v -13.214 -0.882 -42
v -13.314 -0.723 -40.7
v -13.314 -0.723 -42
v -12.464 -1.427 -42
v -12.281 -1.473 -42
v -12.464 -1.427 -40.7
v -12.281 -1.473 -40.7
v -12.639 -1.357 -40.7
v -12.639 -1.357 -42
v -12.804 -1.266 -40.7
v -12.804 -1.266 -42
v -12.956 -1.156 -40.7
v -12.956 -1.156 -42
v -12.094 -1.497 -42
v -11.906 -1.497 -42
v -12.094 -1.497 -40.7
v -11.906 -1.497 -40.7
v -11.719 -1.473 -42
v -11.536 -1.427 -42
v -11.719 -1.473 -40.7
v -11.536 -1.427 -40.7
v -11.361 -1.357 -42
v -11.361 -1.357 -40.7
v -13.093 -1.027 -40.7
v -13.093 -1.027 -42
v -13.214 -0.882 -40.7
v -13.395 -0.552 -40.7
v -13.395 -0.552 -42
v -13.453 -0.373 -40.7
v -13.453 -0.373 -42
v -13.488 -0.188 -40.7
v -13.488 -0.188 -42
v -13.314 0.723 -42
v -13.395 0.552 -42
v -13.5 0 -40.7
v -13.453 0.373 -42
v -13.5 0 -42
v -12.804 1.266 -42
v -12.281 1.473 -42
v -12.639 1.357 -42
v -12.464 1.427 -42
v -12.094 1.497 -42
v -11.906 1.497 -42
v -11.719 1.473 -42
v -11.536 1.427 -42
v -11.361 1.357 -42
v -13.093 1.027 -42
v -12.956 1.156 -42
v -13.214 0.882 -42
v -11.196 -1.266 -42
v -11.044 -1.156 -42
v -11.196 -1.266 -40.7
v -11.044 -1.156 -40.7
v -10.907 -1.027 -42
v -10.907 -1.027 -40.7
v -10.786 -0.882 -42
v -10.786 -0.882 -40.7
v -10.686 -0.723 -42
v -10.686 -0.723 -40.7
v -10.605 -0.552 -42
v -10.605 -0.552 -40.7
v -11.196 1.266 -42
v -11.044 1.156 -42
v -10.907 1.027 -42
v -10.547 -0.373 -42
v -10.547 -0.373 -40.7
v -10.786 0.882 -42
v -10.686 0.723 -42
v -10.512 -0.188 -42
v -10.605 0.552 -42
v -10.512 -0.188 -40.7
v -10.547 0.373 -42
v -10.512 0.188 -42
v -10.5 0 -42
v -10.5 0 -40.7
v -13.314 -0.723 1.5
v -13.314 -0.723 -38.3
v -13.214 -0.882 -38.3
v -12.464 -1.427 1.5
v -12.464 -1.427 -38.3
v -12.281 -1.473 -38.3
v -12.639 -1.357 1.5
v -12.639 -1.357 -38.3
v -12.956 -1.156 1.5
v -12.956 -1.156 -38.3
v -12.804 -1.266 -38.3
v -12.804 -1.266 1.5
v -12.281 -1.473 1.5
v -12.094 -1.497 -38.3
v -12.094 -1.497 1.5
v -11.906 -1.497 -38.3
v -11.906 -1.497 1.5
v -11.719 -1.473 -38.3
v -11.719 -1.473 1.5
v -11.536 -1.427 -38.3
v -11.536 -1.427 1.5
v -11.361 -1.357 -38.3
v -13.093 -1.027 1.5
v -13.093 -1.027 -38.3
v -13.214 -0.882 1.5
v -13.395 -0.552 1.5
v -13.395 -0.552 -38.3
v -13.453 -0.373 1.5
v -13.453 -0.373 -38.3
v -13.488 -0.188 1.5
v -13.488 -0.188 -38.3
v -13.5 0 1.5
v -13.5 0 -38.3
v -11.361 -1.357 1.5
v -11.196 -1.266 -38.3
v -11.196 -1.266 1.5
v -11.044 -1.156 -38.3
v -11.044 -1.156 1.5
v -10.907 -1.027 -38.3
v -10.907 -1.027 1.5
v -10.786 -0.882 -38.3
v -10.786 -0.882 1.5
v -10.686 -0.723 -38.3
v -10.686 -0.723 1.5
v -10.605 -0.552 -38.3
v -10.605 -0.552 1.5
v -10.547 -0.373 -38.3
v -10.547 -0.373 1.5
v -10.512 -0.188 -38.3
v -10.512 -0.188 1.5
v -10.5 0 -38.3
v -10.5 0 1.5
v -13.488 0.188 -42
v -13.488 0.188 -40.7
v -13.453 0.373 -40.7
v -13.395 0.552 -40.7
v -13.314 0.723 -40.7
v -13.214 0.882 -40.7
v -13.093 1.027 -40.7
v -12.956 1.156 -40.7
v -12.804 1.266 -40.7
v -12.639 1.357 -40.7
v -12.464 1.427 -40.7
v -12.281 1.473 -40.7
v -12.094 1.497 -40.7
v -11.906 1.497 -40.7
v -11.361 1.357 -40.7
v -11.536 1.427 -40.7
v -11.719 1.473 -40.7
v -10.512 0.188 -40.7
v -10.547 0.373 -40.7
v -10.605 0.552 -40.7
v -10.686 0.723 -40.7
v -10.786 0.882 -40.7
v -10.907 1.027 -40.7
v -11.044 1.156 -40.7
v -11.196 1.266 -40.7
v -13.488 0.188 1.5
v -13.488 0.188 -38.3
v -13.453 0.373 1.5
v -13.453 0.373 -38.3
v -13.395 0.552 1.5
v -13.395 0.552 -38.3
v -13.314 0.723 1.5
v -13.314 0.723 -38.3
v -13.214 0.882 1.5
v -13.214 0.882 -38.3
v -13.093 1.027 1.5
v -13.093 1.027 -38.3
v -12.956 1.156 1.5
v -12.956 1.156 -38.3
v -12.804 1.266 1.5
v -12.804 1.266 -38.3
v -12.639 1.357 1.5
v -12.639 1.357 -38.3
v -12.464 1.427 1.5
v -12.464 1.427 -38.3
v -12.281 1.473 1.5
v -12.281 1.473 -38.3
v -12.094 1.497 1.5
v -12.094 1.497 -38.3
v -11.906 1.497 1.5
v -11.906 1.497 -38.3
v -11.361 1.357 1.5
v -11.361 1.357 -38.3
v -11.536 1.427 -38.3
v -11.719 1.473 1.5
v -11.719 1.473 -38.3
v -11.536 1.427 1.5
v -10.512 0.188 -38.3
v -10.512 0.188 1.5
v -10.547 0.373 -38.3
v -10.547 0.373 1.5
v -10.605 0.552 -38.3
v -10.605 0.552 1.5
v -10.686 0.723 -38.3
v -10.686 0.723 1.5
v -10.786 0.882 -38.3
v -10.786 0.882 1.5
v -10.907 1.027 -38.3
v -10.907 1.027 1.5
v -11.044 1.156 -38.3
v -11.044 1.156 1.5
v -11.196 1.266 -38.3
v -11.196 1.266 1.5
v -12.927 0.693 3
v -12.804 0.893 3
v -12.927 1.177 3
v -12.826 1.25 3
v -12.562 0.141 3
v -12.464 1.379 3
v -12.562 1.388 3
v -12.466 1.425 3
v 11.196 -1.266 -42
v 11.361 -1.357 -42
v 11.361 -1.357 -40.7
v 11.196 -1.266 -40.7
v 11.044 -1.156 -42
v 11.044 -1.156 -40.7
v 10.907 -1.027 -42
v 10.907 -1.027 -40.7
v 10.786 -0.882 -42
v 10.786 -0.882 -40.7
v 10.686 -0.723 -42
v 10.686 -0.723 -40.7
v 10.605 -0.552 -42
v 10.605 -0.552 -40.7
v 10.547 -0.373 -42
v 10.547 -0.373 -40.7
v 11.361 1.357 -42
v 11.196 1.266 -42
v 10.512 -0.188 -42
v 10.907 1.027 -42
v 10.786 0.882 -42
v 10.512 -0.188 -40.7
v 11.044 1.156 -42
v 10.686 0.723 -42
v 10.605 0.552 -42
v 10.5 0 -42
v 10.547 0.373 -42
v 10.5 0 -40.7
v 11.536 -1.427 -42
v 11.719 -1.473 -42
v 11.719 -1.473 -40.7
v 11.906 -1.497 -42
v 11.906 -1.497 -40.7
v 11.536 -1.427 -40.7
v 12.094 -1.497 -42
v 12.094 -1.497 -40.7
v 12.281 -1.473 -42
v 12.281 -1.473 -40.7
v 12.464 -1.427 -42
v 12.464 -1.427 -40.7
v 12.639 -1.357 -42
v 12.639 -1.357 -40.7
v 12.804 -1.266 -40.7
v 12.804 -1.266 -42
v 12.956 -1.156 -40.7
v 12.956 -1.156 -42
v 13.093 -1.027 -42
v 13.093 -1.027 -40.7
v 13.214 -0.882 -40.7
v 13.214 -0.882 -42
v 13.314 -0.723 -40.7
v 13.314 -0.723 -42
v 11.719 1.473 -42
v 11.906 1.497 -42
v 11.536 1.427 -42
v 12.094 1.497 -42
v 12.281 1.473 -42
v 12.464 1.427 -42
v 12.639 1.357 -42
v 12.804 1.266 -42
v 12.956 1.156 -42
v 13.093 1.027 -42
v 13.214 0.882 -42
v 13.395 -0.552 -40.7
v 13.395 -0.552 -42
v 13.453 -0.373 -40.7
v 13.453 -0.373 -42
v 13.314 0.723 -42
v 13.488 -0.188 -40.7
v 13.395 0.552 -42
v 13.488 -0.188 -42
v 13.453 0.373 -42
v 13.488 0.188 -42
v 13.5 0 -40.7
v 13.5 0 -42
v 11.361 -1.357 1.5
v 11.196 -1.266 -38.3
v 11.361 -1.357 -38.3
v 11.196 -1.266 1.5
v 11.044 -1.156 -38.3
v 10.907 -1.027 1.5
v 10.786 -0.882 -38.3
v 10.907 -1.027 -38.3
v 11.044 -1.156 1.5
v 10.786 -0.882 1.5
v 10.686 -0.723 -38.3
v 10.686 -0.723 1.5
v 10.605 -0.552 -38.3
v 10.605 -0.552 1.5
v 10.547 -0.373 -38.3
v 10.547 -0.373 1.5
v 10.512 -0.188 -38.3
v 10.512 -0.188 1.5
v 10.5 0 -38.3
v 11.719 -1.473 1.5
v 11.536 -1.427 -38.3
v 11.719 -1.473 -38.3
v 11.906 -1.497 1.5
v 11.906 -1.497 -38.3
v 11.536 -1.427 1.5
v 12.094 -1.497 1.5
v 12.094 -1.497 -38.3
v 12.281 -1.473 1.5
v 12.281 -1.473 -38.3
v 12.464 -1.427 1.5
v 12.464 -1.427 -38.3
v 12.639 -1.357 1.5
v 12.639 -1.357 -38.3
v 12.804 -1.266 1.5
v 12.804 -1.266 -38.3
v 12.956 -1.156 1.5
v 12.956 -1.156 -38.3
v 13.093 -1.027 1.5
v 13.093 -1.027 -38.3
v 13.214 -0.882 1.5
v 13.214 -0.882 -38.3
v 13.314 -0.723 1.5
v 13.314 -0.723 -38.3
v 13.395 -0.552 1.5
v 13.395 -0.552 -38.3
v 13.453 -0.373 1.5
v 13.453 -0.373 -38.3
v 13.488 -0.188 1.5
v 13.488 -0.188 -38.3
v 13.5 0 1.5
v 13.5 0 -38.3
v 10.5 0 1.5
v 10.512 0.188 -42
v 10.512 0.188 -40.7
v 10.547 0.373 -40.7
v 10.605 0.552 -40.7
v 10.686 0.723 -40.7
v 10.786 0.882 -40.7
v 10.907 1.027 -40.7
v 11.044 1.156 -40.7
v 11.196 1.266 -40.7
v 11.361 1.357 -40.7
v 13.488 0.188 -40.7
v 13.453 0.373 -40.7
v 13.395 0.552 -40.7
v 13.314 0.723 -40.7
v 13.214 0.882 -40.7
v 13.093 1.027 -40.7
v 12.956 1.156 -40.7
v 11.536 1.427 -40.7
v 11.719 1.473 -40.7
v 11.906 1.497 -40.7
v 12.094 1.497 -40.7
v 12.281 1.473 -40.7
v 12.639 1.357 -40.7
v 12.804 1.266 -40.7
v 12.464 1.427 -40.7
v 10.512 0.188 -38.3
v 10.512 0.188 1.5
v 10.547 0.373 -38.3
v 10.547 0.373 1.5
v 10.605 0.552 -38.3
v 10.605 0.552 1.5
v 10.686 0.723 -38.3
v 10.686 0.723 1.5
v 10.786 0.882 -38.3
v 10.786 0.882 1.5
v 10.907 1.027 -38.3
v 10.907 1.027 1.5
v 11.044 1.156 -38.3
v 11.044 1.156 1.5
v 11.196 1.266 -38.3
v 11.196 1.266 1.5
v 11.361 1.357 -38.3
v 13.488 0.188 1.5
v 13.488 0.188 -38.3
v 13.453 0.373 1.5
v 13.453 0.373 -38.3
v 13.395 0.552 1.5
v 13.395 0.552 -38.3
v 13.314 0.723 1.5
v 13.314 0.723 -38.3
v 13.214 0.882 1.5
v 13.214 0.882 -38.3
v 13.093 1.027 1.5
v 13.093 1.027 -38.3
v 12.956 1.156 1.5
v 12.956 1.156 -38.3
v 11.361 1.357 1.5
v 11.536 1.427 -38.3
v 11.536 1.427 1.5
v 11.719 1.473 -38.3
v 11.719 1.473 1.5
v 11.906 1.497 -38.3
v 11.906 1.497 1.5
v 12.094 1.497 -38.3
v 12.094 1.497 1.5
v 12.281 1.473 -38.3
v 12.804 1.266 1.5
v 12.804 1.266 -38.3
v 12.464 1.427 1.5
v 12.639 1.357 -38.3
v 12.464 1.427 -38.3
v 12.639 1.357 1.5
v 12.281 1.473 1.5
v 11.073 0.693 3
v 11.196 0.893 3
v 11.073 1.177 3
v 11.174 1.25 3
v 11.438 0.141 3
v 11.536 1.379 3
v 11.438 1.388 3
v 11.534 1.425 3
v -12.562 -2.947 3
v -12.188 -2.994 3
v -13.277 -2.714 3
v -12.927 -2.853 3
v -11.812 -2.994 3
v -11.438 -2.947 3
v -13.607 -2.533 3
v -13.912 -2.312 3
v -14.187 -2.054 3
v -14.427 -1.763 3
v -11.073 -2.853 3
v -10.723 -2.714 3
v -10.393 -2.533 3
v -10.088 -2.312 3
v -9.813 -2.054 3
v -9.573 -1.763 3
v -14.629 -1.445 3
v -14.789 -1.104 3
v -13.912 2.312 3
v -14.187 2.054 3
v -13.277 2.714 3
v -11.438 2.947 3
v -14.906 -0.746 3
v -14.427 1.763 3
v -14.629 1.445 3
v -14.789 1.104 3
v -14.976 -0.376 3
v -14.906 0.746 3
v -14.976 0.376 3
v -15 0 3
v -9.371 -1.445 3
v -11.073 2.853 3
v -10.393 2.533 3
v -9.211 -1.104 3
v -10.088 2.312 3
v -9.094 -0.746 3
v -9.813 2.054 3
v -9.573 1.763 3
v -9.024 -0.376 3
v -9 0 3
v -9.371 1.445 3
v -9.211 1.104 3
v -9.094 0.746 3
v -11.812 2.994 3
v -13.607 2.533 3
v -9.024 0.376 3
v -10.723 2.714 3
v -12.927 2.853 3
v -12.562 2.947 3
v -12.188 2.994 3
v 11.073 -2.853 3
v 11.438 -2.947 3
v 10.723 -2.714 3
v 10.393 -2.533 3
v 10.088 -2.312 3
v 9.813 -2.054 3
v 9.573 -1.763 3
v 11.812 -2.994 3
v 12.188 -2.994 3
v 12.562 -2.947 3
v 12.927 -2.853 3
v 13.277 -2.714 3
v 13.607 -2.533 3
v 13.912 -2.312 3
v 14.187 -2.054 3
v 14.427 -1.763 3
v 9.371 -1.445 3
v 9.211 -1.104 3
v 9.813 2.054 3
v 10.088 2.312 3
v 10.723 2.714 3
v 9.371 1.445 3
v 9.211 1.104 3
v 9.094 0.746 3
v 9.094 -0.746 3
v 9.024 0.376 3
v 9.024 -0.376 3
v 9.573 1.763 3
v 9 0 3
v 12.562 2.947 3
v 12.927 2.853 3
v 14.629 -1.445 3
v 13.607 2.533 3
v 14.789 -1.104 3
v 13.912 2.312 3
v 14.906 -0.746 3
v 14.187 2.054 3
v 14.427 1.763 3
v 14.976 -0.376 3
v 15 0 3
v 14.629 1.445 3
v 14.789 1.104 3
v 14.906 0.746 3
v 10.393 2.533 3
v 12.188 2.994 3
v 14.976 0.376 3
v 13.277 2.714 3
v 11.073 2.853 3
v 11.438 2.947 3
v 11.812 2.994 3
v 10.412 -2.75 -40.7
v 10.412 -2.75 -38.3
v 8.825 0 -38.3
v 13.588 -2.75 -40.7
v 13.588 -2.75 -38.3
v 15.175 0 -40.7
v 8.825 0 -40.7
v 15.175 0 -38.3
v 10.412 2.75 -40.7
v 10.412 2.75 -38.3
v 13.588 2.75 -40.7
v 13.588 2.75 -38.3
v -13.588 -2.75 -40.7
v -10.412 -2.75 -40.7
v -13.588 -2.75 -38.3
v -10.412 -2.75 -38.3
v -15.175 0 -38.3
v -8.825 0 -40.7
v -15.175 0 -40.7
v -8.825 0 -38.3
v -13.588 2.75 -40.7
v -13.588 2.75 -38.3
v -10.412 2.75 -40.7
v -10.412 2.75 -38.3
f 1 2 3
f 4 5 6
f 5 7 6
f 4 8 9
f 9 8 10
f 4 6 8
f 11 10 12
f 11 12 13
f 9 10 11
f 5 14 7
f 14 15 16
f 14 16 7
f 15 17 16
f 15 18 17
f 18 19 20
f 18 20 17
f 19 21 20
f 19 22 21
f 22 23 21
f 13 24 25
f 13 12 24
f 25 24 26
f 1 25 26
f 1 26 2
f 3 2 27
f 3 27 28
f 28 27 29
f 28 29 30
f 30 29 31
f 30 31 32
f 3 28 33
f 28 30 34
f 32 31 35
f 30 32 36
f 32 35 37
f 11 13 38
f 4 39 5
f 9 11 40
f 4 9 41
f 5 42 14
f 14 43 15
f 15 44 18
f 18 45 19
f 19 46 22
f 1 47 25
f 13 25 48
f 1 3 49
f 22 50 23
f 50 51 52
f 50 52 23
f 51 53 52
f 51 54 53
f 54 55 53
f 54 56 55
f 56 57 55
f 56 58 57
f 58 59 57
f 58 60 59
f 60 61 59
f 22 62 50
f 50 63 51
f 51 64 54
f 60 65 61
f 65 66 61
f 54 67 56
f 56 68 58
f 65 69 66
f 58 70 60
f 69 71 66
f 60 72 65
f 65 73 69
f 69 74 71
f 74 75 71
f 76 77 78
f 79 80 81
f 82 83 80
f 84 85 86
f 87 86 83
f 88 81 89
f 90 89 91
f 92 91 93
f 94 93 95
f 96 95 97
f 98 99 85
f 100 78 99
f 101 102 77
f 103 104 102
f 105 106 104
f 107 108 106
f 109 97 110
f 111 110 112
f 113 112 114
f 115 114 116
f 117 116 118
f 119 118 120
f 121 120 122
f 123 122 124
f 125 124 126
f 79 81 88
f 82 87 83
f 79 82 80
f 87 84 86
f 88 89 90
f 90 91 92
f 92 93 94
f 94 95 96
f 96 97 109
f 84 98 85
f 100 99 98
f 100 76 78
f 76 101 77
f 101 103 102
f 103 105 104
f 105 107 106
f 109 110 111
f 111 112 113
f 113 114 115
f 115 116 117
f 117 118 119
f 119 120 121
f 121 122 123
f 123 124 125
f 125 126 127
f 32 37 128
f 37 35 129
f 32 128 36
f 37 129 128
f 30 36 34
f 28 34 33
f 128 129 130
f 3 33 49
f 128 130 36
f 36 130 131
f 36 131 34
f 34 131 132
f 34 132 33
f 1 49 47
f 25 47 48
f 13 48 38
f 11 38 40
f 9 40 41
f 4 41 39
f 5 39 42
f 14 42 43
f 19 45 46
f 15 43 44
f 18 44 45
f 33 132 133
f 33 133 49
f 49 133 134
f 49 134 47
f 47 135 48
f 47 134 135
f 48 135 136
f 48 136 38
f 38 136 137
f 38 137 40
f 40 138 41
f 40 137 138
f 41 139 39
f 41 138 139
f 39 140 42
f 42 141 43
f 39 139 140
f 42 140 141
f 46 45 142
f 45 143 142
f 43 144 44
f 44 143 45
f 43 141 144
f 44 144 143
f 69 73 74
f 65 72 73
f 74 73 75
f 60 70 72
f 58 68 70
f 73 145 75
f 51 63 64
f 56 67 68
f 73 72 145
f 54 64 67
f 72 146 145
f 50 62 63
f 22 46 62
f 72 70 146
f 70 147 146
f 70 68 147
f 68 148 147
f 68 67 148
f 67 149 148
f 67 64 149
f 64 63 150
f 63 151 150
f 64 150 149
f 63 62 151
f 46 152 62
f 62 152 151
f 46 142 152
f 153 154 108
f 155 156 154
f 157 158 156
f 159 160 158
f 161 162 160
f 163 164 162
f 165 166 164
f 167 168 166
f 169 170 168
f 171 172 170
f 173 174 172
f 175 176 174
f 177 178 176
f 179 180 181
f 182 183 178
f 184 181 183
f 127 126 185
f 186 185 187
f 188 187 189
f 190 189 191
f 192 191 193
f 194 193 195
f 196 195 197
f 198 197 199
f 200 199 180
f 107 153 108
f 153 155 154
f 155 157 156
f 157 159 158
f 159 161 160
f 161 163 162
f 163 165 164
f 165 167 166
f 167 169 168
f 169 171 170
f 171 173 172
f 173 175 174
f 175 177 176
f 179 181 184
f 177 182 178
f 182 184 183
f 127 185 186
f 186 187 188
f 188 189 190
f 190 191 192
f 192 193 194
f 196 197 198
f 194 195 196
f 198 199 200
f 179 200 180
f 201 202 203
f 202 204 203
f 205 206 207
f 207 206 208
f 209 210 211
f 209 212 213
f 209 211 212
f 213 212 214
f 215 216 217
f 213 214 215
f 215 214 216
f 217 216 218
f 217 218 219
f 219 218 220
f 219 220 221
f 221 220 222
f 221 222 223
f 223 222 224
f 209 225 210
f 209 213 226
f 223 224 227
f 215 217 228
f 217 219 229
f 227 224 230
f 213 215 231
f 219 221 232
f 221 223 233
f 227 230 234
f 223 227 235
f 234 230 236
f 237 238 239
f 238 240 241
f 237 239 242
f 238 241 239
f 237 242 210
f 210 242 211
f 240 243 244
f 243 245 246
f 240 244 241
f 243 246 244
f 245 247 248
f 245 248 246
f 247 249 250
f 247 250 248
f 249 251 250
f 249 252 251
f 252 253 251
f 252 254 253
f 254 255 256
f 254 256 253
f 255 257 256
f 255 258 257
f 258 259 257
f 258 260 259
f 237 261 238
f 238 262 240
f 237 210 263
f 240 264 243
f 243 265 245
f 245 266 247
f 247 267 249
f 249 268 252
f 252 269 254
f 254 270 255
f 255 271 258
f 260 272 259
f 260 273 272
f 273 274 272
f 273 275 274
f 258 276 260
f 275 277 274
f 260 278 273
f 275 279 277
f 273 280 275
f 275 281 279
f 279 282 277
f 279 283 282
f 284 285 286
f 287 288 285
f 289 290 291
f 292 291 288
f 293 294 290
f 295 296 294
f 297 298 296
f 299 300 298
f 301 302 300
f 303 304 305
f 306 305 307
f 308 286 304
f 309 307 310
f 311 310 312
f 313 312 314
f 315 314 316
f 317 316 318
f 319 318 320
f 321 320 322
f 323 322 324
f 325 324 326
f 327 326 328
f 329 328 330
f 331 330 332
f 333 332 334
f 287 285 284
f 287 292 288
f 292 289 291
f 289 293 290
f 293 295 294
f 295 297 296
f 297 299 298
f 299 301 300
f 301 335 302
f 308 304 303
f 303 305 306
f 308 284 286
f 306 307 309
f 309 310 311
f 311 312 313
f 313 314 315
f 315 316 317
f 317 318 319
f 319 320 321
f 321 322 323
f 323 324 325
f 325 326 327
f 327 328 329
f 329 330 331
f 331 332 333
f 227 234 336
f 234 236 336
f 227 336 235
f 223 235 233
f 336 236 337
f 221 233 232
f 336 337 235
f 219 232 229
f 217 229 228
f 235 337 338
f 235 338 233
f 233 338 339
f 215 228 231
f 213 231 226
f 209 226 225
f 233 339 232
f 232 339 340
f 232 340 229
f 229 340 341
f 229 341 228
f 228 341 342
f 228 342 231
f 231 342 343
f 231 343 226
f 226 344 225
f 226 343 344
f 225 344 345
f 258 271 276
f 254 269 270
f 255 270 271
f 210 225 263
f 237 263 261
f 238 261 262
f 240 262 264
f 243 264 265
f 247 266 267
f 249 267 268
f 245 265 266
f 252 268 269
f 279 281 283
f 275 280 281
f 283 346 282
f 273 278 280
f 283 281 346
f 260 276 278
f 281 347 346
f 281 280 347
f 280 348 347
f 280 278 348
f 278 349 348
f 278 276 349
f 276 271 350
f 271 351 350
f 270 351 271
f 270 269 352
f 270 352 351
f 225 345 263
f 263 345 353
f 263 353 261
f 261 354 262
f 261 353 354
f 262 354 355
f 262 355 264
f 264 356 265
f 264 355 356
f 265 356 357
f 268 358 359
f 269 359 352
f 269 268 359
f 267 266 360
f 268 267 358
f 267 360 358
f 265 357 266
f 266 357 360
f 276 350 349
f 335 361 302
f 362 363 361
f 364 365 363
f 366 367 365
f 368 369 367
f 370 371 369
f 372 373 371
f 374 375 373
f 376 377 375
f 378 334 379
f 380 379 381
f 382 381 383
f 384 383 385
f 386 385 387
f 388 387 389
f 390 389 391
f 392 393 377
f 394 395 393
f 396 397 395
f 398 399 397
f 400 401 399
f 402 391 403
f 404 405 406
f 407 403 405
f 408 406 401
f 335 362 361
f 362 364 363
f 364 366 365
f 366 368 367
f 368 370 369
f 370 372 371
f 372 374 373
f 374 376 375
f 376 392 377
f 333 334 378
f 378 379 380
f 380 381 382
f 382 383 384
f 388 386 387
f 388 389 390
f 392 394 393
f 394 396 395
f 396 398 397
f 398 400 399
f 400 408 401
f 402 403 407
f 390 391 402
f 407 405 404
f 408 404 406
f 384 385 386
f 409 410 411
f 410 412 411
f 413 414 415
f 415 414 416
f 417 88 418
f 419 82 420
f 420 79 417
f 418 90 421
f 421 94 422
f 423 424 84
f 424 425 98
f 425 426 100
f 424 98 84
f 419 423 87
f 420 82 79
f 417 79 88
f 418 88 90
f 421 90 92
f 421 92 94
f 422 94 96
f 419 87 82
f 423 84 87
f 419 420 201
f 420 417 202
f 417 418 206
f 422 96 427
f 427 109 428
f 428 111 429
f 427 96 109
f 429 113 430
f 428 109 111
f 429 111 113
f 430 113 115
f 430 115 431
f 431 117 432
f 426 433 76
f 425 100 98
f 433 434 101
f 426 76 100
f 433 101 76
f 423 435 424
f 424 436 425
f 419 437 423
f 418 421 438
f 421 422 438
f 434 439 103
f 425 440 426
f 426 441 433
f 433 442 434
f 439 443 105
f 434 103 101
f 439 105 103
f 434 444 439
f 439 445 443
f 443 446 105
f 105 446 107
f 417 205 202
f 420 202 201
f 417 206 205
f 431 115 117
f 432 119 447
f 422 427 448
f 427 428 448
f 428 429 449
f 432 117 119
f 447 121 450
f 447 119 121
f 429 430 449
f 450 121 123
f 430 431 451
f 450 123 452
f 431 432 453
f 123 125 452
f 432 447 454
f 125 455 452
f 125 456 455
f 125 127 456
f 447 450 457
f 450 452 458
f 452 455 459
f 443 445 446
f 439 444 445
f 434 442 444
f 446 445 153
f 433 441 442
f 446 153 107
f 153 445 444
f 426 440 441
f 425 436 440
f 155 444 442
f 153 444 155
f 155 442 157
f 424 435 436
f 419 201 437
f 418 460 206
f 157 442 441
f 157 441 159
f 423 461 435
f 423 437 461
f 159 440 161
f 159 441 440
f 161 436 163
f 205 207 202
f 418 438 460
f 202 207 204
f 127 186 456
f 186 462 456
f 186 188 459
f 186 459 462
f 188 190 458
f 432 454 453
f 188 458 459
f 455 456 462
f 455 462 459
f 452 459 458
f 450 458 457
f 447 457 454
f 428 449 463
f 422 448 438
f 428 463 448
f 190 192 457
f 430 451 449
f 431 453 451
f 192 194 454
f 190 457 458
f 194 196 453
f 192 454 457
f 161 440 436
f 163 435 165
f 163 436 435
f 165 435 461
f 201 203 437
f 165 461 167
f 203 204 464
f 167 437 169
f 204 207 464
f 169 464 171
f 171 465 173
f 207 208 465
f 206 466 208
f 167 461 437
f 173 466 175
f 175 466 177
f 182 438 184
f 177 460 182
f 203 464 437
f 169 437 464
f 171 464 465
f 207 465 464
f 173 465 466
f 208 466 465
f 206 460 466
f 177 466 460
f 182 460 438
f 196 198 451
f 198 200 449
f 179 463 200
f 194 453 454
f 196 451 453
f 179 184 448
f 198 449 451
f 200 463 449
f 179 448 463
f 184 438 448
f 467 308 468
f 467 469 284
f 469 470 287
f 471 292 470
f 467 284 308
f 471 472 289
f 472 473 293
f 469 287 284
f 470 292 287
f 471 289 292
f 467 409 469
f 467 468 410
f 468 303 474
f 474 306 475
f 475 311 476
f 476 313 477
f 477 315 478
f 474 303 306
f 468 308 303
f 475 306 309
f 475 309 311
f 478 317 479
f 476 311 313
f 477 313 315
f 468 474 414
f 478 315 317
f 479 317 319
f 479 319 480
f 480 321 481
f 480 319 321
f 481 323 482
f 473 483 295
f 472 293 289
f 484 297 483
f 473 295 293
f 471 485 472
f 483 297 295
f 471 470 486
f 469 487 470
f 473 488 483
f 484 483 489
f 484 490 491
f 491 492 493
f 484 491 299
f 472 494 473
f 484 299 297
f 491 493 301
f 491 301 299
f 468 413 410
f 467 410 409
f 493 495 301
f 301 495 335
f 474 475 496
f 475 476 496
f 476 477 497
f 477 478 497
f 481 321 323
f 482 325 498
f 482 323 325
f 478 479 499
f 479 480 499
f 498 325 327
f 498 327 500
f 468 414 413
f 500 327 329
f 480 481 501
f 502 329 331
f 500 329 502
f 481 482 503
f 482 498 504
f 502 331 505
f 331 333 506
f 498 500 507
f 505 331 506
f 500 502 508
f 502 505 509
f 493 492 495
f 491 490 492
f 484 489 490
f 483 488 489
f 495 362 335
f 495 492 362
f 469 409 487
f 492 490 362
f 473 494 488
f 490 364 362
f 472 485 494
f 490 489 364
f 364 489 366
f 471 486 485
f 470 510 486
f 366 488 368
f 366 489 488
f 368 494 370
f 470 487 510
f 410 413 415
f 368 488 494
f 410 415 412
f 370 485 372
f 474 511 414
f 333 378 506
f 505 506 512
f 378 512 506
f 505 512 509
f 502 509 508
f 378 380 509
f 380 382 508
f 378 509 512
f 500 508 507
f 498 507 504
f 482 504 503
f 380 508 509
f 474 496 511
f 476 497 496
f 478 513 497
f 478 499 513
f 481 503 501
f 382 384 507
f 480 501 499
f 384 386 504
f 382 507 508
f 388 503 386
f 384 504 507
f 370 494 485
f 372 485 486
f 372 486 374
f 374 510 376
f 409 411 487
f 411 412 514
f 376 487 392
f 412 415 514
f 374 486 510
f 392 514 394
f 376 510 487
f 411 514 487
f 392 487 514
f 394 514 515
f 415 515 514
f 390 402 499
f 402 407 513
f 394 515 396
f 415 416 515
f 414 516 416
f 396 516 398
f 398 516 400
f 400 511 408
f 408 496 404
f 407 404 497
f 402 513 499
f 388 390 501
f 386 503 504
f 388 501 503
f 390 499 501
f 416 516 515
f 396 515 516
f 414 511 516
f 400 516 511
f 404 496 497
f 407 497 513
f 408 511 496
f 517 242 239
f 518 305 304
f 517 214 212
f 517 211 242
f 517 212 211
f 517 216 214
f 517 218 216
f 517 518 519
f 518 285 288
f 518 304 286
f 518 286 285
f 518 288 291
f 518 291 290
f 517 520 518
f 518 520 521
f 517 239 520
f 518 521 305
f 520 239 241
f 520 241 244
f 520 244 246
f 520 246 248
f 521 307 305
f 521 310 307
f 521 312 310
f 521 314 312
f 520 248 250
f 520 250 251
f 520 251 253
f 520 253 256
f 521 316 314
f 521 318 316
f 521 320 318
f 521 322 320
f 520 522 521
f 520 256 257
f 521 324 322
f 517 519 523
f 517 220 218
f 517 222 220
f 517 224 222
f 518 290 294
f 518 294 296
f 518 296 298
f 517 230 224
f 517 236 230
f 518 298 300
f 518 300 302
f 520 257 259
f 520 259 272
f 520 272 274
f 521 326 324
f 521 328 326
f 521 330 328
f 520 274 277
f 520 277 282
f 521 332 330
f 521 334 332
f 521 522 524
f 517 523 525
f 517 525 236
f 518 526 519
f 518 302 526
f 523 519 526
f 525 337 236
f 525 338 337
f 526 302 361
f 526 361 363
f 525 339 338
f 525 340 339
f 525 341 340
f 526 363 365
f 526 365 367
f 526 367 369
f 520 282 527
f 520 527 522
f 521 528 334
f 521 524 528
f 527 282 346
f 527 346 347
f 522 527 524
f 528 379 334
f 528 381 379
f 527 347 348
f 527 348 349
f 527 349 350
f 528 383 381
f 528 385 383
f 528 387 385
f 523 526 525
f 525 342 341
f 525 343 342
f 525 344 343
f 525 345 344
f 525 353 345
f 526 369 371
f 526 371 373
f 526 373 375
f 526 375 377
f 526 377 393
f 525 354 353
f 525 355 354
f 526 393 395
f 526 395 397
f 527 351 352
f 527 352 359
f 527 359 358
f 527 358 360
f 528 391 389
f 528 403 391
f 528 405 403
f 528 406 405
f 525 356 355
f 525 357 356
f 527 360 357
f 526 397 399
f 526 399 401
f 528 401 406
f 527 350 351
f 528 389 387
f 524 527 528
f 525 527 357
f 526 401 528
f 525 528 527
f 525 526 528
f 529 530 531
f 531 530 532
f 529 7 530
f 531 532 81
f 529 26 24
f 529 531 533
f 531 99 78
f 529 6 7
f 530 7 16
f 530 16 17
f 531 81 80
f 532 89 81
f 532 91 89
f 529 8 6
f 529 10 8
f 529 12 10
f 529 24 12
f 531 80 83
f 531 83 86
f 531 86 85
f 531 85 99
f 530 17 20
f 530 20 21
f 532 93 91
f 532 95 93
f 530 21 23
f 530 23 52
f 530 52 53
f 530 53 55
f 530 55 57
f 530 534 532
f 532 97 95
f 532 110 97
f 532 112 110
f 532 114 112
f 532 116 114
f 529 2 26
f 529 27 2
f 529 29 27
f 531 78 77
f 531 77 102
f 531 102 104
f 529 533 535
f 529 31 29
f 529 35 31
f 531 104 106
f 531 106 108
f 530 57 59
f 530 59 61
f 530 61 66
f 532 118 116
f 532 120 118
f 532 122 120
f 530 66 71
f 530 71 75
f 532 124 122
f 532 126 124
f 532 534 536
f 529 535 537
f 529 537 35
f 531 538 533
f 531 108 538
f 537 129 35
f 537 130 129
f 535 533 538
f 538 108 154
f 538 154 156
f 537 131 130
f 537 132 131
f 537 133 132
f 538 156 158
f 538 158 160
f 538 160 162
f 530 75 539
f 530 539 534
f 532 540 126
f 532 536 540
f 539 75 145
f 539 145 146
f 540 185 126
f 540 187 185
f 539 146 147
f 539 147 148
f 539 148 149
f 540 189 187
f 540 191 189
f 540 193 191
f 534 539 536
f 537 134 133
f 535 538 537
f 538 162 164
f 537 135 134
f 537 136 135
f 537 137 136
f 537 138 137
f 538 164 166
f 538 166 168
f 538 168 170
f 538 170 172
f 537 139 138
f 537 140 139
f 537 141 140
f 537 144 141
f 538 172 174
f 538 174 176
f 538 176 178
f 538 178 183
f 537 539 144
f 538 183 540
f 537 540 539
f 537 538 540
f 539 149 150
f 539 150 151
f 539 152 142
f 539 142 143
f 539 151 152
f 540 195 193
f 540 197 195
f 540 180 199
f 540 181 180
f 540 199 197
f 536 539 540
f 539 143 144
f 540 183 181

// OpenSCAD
$fn = 50;

difference() {
	union() {
		translate(v = [-12, 0, 3]) {
			rotate(a = [0, 0, 0]) {
				difference() {
					union() {
						translate(v = [0, 0, -45.0]) {
							cylinder(h = 45, r = 1.5);
						}
						translate(v = [0, 0, -1.5]) {
							cylinder(h = 1.5, r1 = 1.5, r2 = 3);
						}
					}
					union();
				}
			}
		}
		translate(v = [-12, 0, -40.7]) {
			rotate(a = [0, 0, 0]) {
				difference() {
					union() {
						linear_extrude(height = 2.4) {
							polygon(points = [[3.1754264805429417, 0.0], [1.5877132402714713, 2.75], [-1.5877132402714702, 2.7500000000000004], [-3.1754264805429417, 3.888775875324659e-16], [-1.5877132402714722, -2.7499999999999996], [1.5877132402714687, -2.7500000000000013]]);
						}
					}
					union();
				}
			}
		}
		translate(v = [12, 0, 3]) {
			rotate(a = [0, 0, 0]) {
				difference() {
					union() {
						translate(v = [0, 0, -45.0]) {
							cylinder(h = 45, r = 1.5);
						}
						translate(v = [0, 0, -1.5]) {
							cylinder(h = 1.5, r1 = 1.5, r2 = 3);
						}
					}
					union();
				}
			}
		}
		translate(v = [12, 0, -40.7]) {
			rotate(a = [0, 0, 0]) {
				difference() {
					union() {
						linear_extrude(height = 2.4) {
							polygon(points = [[3.1754264805429417, 0.0], [1.5877132402714713, 2.75], [-1.5877132402714702, 2.7500000000000004], [-3.1754264805429417, 3.888775875324659e-16], [-1.5877132402714722, -2.7499999999999996], [1.5877132402714687, -2.7500000000000013]]);
						}
					}
					union();
				}
			}
		}
	}
	union();
}
